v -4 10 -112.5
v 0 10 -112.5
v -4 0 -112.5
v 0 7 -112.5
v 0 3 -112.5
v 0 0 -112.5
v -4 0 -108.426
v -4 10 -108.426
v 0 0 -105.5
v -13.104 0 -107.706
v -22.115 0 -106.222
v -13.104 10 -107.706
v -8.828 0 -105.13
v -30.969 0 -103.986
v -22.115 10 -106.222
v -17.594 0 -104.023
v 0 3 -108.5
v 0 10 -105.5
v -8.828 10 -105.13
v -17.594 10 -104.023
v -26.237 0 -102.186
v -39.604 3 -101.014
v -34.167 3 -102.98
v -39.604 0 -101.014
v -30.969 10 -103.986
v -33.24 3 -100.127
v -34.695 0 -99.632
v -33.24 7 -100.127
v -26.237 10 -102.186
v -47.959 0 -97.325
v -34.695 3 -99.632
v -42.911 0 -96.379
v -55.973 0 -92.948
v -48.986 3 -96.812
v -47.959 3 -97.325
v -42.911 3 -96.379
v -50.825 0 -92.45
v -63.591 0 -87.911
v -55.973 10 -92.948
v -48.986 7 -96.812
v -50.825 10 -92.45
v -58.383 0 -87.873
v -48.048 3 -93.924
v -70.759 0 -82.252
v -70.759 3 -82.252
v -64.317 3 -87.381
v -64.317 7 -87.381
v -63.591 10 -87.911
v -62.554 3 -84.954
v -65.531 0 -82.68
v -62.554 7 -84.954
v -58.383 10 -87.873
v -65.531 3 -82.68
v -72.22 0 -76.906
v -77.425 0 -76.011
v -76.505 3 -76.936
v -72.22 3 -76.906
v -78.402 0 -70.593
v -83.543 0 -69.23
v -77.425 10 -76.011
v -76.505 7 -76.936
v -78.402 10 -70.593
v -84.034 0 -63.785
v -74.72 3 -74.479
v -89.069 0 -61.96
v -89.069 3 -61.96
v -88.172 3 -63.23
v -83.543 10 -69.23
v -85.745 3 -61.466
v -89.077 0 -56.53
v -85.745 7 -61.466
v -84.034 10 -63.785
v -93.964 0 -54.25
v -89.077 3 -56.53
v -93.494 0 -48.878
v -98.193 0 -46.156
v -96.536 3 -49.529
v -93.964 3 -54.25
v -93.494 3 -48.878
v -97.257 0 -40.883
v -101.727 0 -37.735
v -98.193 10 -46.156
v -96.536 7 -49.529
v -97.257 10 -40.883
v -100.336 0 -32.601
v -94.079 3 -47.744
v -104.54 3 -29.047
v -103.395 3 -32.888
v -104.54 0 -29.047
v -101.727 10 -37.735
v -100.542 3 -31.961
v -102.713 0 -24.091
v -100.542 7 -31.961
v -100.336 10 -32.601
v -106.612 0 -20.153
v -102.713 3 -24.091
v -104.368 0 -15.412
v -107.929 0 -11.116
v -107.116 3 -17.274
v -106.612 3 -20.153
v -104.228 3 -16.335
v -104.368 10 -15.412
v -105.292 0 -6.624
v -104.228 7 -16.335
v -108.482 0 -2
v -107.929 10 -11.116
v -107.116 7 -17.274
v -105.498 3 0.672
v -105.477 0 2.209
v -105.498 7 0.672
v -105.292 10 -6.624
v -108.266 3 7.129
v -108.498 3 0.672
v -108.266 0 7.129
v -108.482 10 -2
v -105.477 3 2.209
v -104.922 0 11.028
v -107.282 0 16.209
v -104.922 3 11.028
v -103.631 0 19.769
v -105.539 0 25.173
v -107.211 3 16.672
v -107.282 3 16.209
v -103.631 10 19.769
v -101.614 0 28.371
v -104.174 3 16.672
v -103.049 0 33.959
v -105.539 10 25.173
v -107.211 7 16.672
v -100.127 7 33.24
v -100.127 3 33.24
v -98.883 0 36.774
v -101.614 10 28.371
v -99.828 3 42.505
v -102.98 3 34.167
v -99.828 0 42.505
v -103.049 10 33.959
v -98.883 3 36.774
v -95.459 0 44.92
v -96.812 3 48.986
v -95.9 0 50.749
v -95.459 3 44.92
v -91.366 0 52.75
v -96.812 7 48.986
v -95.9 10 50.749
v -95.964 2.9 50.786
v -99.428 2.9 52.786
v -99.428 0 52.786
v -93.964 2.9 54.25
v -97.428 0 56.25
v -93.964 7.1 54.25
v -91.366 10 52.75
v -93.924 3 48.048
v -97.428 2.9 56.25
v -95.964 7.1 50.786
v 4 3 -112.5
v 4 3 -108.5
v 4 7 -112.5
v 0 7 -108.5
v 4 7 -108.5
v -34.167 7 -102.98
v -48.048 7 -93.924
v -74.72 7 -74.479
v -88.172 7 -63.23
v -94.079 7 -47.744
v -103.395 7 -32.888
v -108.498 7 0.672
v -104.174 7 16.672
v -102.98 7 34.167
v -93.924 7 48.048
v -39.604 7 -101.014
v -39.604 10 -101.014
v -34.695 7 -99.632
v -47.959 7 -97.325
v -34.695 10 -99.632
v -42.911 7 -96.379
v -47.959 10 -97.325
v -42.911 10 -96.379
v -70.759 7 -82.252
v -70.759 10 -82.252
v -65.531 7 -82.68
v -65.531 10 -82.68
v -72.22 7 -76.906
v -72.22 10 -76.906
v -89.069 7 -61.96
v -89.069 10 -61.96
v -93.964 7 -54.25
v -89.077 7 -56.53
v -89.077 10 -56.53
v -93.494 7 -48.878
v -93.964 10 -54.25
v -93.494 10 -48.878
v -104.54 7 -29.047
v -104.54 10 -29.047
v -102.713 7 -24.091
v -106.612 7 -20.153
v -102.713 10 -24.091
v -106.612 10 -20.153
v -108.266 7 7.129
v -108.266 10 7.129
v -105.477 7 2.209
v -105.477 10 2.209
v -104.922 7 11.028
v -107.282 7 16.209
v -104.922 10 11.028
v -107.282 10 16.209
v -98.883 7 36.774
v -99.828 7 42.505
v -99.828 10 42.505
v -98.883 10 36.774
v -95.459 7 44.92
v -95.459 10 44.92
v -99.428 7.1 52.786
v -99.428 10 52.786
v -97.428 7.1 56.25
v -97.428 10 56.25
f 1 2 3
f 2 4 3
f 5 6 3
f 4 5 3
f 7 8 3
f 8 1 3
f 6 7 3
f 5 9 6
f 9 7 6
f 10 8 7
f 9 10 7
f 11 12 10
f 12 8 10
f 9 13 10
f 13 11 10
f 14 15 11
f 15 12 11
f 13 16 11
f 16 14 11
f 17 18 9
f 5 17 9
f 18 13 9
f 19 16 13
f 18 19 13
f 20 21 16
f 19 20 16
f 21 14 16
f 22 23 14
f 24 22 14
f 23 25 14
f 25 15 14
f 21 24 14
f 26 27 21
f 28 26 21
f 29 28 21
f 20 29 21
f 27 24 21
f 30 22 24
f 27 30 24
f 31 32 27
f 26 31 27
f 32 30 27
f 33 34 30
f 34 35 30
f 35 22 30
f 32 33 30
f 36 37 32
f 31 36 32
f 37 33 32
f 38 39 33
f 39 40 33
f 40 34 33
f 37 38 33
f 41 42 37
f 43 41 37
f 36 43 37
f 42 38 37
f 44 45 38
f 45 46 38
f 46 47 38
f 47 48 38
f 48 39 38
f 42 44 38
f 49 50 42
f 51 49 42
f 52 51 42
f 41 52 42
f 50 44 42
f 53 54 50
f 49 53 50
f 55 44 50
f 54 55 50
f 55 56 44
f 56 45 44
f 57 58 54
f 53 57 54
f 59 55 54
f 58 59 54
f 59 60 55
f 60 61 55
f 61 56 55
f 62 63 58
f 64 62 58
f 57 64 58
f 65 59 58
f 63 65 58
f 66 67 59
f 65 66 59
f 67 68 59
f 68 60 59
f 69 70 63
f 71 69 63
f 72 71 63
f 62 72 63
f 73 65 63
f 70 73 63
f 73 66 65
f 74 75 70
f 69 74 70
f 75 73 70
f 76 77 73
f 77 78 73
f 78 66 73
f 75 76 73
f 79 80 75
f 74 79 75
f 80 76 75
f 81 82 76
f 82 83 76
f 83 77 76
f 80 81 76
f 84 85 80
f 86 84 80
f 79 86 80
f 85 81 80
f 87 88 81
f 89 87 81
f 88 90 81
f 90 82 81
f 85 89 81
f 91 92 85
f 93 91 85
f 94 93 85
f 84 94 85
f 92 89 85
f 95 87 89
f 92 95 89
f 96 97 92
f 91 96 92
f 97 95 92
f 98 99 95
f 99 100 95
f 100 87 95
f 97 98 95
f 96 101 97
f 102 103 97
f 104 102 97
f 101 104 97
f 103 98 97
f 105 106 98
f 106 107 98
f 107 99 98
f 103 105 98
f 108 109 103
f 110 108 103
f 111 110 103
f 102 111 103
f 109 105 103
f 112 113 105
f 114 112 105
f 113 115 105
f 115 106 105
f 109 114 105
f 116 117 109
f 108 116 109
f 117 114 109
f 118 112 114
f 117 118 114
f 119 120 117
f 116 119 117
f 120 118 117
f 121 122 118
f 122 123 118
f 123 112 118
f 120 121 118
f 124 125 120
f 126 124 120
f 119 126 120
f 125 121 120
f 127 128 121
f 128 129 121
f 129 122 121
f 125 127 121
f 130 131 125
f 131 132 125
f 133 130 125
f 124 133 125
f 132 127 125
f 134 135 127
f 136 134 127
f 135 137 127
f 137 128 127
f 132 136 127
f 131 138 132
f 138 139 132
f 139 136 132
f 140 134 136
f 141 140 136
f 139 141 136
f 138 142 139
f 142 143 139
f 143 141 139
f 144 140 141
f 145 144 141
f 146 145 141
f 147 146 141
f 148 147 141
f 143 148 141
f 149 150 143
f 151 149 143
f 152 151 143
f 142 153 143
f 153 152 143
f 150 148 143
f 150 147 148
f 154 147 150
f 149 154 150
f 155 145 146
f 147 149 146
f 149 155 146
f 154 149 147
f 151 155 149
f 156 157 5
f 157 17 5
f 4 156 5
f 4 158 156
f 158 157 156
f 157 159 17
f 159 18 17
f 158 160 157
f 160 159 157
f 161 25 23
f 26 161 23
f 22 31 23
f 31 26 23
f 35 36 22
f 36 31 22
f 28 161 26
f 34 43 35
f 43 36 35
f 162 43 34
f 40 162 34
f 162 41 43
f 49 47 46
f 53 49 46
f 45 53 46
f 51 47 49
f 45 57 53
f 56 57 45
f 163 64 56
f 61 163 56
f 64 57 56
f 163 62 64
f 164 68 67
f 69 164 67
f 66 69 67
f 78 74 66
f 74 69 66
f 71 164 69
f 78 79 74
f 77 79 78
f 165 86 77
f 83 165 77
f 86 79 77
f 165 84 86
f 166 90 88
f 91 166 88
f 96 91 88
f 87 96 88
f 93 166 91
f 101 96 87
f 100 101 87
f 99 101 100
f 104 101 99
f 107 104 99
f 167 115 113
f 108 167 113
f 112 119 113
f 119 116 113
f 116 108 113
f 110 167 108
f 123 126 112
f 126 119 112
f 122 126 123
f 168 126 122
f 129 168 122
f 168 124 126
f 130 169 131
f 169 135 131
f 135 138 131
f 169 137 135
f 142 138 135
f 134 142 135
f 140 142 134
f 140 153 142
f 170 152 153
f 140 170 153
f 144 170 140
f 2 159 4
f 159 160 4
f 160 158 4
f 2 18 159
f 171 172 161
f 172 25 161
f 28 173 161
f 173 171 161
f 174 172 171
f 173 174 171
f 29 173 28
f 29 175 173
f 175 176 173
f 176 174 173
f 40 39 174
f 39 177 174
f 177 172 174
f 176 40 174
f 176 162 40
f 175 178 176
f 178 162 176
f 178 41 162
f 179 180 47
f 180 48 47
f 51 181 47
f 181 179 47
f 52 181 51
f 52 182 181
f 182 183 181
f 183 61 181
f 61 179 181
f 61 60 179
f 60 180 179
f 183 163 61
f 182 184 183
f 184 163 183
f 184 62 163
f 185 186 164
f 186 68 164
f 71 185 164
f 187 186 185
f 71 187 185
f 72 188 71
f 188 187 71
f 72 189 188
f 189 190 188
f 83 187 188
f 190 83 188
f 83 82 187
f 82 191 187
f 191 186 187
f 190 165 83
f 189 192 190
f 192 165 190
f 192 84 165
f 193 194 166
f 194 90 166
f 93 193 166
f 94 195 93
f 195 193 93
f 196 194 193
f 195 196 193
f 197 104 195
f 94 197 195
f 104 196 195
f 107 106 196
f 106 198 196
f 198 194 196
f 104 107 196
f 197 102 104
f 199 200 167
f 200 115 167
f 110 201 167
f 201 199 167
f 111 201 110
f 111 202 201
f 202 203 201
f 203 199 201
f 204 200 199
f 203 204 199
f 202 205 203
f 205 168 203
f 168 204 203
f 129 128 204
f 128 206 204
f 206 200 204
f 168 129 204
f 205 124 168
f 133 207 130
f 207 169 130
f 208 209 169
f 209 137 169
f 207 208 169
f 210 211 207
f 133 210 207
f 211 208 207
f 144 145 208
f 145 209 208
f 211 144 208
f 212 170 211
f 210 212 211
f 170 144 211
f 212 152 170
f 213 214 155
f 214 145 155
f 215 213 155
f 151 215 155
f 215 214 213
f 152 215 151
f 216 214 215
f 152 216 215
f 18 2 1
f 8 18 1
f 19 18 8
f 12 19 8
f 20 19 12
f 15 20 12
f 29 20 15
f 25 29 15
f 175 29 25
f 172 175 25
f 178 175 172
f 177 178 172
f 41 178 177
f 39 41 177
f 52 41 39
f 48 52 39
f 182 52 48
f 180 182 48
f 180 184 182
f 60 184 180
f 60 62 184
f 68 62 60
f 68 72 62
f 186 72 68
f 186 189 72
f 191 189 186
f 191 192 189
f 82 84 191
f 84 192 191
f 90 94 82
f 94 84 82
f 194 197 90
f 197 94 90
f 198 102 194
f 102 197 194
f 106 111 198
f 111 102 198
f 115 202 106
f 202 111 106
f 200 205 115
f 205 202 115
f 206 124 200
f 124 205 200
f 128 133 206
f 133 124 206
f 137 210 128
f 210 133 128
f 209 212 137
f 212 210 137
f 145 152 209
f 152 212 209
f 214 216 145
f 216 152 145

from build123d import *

# Parameters (mm, degrees)
BOSS_EXTRUDE1_DEPTH             = 10
SKETCH2_W                       = 8
SKETCH2_H                       = 4.2
CUT_EXTRUDE1_DEPTH              = 4
SKETCH3_W                       = 8
SKETCH3_H                       = 4
BOSS_EXTRUDE2_DEPTH             = 4
SKETCH4_W                       = 16
SKETCH4_H                       = 4
CUT_EXTRUDE2_DEPTH              = 157.615771875
CIRPATTERN4_COUNT               = 5
CIRPATTERN4_ANGLE               = 72
CIRPATTERN4_THE_OTHER_WAY_COUNT = 5
CIRPATTERN4_THE_OTHER_WAY_ANGLE = 72


with BuildPart() as part:
    # Sketch1 → Boss-Extrude1 (new body)
    with BuildSketch(Plane(origin=(0, 0, 0), x_dir=(1, 0, 0), z_dir=(0, 1, 0))):
        with BuildLine():
            Line((-4, 112.5), (-4, 108.426242211))
            ThreePointArc((-4, 108.426242211), (-93.963756311, 54.25), (-95.899880192, -50.74901949))
            Line((-95.899880192, -50.74901949), (-99.427857926, -52.785898385))
            Line((-99.427857926, -52.785898385), (-97.427857926, -56.25))
            Line((-97.427857926, -56.25), (-91.365680099, -52.75))
            ThreePointArc((-91.365680099, -52.75), (-91.365680099, 52.75), (0, 105.5))
            Line((0, 105.5), (0, 112.5))
            Line((0, 112.5), (-4, 112.5))
        make_face()
    extrude(amount=BOSS_EXTRUDE1_DEPTH)

    # Sketch2 → Cut-Extrude1 (cut)
    with BuildSketch(Plane(origin=(-97.427857926, 0, 56.25), x_dir=(0.4999999999999976, 0, 0.86602540378444), z_dir=(-0.8660254037844402, 0, 0.4999999999999977))):
        with Locations((0, 5)):
            Rectangle(SKETCH2_W, SKETCH2_H)
    extrude(amount=-CUT_EXTRUDE1_DEPTH, mode=Mode.SUBTRACT)

    # Sketch3 → Boss-Extrude2 (add)
    with BuildSketch(Plane(origin=(0, 0, -112.5), x_dir=(-1, 0, 0), z_dir=(0, 0, -1))):
        with Locations((0, 5)):
            Rectangle(SKETCH3_W, SKETCH3_H)
    extrude(amount=-BOSS_EXTRUDE2_DEPTH)

    # Sketch4 → Cut-Extrude2 (cut, through all)
    with BuildSketch(Plane(origin=(0, 0, 0), x_dir=(0, 0, -1), z_dir=(1, 0, 0))):
        with Locations((-8.672320837, 5)):
            Rectangle(SKETCH4_W, SKETCH4_H)
    cut_extrude2 = extrude(amount=-CUT_EXTRUDE2_DEPTH, mode=Mode.SUBTRACT)

    # CirPattern4: Cut-Extrude2 ×5 about axis
    cirpattern4_axis = Axis((0, 0, 0), (0, -1, 0))
    for i in range(1, CIRPATTERN4_COUNT):
        add(cut_extrude2.rotate(cirpattern4_axis, i * CIRPATTERN4_ANGLE / (CIRPATTERN4_COUNT - 1)), mode=Mode.SUBTRACT)

    # CirPattern4 the other way: Cut-Extrude2 ×5 about axis
    cirpattern4_the_other_way_axis = Axis((0, 0, 0), (0, 1, 0))
    for i in range(1, CIRPATTERN4_THE_OTHER_WAY_COUNT):
        add(cut_extrude2.rotate(cirpattern4_the_other_way_axis, i * CIRPATTERN4_THE_OTHER_WAY_ANGLE / (CIRPATTERN4_THE_OTHER_WAY_COUNT - 1)), mode=Mode.SUBTRACT)


solid = part.part
